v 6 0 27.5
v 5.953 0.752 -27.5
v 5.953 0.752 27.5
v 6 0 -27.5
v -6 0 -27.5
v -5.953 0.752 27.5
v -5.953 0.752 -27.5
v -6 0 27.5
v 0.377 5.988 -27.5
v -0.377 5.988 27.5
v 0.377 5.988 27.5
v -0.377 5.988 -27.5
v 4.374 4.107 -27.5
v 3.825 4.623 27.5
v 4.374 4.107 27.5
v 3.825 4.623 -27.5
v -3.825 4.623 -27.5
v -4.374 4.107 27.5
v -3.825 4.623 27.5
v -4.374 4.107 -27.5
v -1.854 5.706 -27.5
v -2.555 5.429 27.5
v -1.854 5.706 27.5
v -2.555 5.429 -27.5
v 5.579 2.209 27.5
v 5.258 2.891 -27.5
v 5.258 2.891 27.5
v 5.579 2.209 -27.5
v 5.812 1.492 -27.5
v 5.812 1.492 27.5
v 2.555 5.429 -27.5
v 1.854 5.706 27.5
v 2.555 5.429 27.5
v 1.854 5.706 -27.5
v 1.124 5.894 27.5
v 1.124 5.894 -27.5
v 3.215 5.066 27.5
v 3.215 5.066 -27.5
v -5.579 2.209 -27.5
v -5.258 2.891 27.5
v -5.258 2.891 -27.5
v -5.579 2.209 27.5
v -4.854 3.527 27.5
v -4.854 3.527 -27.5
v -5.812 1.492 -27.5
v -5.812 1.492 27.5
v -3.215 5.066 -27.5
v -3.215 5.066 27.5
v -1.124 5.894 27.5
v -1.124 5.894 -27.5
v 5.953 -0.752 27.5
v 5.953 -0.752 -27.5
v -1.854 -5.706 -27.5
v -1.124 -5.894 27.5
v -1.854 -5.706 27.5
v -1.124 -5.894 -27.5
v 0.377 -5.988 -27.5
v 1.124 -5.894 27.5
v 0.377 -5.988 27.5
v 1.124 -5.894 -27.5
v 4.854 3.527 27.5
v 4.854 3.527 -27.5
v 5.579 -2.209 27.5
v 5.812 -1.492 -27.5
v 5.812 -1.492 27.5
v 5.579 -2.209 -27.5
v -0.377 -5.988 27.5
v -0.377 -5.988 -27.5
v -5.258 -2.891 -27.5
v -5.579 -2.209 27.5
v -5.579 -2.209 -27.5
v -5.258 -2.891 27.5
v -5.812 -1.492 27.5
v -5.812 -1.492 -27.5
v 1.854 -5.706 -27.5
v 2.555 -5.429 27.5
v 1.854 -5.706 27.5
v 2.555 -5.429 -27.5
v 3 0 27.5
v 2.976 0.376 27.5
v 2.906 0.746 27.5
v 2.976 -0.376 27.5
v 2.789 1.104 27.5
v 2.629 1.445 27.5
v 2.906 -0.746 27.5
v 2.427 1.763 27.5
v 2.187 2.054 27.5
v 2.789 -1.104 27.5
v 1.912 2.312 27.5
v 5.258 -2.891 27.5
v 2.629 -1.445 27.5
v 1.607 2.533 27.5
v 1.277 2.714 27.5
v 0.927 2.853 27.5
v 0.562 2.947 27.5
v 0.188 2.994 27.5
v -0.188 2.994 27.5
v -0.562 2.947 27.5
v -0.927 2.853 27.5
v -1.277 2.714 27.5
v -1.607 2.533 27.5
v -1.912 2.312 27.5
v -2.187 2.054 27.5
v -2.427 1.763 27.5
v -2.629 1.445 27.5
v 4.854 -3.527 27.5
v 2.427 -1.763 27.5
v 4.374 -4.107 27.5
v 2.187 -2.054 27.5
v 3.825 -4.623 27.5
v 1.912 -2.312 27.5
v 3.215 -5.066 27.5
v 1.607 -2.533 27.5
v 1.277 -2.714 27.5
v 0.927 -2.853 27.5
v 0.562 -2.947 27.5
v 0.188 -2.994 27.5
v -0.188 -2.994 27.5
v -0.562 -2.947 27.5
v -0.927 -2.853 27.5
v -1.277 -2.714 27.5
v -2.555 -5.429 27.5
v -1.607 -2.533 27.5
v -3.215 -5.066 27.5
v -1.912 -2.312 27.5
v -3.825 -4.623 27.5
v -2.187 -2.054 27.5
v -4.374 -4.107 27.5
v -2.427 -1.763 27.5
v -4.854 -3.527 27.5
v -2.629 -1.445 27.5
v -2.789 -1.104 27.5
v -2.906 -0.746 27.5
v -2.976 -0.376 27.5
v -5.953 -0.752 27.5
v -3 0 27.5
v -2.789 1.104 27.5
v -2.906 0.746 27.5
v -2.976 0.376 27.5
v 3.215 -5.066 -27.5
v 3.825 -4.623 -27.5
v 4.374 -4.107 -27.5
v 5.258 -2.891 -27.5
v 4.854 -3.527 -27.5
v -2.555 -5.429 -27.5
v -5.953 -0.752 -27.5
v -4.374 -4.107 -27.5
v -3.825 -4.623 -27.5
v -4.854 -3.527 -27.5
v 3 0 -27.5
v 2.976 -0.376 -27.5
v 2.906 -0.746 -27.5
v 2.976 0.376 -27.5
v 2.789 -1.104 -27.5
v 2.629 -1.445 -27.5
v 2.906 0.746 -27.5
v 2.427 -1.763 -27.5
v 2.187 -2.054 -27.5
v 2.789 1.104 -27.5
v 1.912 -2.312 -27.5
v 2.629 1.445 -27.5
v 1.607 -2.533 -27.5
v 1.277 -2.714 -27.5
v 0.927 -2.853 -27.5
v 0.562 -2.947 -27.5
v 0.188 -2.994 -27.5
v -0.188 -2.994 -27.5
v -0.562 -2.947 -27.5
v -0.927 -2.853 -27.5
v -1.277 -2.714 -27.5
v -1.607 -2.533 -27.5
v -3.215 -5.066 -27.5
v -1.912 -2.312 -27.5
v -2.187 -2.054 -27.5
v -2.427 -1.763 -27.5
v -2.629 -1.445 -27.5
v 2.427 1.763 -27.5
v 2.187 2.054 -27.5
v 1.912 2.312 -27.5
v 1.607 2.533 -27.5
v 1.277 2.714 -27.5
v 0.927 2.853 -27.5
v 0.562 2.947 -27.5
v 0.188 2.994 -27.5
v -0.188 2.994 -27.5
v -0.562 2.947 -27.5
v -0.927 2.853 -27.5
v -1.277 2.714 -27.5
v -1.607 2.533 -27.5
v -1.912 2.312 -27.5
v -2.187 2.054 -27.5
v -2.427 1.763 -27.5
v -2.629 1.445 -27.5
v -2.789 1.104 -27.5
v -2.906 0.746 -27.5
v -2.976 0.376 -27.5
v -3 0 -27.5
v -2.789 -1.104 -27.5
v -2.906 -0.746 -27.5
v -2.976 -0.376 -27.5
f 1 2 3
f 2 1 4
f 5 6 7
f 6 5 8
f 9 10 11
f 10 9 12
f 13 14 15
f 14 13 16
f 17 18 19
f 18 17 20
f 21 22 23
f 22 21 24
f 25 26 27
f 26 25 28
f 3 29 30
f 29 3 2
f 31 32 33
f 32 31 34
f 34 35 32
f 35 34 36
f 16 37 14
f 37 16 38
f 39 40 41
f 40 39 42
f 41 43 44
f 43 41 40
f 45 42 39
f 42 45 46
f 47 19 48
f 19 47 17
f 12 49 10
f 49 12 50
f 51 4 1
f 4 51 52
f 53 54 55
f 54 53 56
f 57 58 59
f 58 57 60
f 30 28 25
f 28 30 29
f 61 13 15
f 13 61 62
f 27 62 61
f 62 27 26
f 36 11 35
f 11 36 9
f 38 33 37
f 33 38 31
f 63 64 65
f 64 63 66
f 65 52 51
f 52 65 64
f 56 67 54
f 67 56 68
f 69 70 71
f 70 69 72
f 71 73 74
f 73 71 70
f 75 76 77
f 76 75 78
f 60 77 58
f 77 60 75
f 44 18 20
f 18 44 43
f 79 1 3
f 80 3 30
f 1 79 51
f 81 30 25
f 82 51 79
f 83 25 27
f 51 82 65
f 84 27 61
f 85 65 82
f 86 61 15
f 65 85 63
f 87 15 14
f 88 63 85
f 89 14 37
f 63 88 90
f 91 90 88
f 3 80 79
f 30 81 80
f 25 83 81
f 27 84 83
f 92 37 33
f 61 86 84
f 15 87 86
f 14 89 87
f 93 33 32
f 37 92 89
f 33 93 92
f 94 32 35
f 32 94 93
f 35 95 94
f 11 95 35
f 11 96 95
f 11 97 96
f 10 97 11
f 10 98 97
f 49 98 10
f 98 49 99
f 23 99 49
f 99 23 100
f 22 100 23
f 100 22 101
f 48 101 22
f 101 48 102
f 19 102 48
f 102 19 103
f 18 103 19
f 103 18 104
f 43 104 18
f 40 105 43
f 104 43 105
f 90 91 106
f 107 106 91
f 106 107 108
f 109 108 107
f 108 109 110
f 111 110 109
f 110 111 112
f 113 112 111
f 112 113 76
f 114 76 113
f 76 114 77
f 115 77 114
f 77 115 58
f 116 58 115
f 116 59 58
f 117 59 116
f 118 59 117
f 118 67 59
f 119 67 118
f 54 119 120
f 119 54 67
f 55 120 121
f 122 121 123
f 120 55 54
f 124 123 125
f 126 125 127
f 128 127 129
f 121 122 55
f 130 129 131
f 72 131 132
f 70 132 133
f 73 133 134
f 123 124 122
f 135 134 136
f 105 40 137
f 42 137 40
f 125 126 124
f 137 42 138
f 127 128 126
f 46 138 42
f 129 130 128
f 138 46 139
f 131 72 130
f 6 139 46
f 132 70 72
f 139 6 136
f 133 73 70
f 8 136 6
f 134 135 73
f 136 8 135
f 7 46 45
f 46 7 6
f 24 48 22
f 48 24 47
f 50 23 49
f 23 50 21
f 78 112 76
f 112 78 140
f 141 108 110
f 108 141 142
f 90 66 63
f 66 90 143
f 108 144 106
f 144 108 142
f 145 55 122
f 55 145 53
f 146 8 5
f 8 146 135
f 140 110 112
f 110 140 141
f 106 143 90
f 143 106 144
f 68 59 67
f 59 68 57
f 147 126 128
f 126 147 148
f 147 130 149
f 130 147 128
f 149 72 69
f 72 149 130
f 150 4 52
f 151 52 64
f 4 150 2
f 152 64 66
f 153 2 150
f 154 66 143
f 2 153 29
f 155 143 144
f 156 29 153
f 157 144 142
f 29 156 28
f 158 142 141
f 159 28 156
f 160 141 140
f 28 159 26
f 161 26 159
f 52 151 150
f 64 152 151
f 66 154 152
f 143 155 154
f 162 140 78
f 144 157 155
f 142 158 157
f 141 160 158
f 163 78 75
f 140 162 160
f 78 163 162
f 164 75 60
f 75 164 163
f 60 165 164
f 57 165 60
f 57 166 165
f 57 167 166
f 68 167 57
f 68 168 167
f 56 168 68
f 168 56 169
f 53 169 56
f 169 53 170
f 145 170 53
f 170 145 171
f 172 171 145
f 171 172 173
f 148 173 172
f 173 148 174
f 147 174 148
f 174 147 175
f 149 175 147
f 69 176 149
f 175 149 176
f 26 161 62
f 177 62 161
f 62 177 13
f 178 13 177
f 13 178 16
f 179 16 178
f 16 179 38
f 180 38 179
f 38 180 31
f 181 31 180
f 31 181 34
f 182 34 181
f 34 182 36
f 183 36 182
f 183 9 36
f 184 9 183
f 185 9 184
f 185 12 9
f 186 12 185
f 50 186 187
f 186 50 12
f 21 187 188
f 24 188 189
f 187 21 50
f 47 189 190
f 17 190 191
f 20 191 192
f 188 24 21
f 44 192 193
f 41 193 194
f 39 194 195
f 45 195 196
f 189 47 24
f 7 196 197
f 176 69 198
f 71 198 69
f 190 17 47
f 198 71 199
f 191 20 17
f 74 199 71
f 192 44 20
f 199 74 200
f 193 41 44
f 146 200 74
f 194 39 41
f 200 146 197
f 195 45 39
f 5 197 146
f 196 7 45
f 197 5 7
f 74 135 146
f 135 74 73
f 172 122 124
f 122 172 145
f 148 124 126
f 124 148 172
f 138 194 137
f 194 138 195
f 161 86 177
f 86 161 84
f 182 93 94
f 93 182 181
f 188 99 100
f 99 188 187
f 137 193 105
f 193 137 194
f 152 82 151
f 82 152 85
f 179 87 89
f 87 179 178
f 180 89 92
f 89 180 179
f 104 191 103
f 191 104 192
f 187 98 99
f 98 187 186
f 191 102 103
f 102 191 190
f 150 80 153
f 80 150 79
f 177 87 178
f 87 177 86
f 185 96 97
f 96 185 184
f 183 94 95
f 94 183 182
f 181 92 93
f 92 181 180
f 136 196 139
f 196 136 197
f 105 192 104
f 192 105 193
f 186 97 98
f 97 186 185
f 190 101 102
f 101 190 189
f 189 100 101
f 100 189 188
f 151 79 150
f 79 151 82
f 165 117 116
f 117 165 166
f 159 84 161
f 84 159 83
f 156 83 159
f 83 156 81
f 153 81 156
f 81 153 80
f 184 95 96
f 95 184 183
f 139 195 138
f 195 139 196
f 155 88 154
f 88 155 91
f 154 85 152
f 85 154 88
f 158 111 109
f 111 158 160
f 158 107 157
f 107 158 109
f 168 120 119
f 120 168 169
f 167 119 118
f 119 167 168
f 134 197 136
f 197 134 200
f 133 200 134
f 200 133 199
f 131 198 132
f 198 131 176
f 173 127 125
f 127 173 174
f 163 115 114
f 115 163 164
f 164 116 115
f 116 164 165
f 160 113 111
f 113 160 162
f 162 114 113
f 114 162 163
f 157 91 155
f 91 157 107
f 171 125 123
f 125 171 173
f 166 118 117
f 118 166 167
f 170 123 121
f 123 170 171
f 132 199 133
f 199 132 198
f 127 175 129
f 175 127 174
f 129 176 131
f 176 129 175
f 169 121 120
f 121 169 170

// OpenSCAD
$fn = 50;


difference() {
	union() {
		translate(v = [0, 0, -27.5000000000]) {
			cylinder(h = 55, r = 6.0000000000);
		}
	}
	union() {
		translate(v = [0, 0, -100.0000000000]) {
			cylinder(h = 200, r = 3.0000000000);
		}
	}
}
